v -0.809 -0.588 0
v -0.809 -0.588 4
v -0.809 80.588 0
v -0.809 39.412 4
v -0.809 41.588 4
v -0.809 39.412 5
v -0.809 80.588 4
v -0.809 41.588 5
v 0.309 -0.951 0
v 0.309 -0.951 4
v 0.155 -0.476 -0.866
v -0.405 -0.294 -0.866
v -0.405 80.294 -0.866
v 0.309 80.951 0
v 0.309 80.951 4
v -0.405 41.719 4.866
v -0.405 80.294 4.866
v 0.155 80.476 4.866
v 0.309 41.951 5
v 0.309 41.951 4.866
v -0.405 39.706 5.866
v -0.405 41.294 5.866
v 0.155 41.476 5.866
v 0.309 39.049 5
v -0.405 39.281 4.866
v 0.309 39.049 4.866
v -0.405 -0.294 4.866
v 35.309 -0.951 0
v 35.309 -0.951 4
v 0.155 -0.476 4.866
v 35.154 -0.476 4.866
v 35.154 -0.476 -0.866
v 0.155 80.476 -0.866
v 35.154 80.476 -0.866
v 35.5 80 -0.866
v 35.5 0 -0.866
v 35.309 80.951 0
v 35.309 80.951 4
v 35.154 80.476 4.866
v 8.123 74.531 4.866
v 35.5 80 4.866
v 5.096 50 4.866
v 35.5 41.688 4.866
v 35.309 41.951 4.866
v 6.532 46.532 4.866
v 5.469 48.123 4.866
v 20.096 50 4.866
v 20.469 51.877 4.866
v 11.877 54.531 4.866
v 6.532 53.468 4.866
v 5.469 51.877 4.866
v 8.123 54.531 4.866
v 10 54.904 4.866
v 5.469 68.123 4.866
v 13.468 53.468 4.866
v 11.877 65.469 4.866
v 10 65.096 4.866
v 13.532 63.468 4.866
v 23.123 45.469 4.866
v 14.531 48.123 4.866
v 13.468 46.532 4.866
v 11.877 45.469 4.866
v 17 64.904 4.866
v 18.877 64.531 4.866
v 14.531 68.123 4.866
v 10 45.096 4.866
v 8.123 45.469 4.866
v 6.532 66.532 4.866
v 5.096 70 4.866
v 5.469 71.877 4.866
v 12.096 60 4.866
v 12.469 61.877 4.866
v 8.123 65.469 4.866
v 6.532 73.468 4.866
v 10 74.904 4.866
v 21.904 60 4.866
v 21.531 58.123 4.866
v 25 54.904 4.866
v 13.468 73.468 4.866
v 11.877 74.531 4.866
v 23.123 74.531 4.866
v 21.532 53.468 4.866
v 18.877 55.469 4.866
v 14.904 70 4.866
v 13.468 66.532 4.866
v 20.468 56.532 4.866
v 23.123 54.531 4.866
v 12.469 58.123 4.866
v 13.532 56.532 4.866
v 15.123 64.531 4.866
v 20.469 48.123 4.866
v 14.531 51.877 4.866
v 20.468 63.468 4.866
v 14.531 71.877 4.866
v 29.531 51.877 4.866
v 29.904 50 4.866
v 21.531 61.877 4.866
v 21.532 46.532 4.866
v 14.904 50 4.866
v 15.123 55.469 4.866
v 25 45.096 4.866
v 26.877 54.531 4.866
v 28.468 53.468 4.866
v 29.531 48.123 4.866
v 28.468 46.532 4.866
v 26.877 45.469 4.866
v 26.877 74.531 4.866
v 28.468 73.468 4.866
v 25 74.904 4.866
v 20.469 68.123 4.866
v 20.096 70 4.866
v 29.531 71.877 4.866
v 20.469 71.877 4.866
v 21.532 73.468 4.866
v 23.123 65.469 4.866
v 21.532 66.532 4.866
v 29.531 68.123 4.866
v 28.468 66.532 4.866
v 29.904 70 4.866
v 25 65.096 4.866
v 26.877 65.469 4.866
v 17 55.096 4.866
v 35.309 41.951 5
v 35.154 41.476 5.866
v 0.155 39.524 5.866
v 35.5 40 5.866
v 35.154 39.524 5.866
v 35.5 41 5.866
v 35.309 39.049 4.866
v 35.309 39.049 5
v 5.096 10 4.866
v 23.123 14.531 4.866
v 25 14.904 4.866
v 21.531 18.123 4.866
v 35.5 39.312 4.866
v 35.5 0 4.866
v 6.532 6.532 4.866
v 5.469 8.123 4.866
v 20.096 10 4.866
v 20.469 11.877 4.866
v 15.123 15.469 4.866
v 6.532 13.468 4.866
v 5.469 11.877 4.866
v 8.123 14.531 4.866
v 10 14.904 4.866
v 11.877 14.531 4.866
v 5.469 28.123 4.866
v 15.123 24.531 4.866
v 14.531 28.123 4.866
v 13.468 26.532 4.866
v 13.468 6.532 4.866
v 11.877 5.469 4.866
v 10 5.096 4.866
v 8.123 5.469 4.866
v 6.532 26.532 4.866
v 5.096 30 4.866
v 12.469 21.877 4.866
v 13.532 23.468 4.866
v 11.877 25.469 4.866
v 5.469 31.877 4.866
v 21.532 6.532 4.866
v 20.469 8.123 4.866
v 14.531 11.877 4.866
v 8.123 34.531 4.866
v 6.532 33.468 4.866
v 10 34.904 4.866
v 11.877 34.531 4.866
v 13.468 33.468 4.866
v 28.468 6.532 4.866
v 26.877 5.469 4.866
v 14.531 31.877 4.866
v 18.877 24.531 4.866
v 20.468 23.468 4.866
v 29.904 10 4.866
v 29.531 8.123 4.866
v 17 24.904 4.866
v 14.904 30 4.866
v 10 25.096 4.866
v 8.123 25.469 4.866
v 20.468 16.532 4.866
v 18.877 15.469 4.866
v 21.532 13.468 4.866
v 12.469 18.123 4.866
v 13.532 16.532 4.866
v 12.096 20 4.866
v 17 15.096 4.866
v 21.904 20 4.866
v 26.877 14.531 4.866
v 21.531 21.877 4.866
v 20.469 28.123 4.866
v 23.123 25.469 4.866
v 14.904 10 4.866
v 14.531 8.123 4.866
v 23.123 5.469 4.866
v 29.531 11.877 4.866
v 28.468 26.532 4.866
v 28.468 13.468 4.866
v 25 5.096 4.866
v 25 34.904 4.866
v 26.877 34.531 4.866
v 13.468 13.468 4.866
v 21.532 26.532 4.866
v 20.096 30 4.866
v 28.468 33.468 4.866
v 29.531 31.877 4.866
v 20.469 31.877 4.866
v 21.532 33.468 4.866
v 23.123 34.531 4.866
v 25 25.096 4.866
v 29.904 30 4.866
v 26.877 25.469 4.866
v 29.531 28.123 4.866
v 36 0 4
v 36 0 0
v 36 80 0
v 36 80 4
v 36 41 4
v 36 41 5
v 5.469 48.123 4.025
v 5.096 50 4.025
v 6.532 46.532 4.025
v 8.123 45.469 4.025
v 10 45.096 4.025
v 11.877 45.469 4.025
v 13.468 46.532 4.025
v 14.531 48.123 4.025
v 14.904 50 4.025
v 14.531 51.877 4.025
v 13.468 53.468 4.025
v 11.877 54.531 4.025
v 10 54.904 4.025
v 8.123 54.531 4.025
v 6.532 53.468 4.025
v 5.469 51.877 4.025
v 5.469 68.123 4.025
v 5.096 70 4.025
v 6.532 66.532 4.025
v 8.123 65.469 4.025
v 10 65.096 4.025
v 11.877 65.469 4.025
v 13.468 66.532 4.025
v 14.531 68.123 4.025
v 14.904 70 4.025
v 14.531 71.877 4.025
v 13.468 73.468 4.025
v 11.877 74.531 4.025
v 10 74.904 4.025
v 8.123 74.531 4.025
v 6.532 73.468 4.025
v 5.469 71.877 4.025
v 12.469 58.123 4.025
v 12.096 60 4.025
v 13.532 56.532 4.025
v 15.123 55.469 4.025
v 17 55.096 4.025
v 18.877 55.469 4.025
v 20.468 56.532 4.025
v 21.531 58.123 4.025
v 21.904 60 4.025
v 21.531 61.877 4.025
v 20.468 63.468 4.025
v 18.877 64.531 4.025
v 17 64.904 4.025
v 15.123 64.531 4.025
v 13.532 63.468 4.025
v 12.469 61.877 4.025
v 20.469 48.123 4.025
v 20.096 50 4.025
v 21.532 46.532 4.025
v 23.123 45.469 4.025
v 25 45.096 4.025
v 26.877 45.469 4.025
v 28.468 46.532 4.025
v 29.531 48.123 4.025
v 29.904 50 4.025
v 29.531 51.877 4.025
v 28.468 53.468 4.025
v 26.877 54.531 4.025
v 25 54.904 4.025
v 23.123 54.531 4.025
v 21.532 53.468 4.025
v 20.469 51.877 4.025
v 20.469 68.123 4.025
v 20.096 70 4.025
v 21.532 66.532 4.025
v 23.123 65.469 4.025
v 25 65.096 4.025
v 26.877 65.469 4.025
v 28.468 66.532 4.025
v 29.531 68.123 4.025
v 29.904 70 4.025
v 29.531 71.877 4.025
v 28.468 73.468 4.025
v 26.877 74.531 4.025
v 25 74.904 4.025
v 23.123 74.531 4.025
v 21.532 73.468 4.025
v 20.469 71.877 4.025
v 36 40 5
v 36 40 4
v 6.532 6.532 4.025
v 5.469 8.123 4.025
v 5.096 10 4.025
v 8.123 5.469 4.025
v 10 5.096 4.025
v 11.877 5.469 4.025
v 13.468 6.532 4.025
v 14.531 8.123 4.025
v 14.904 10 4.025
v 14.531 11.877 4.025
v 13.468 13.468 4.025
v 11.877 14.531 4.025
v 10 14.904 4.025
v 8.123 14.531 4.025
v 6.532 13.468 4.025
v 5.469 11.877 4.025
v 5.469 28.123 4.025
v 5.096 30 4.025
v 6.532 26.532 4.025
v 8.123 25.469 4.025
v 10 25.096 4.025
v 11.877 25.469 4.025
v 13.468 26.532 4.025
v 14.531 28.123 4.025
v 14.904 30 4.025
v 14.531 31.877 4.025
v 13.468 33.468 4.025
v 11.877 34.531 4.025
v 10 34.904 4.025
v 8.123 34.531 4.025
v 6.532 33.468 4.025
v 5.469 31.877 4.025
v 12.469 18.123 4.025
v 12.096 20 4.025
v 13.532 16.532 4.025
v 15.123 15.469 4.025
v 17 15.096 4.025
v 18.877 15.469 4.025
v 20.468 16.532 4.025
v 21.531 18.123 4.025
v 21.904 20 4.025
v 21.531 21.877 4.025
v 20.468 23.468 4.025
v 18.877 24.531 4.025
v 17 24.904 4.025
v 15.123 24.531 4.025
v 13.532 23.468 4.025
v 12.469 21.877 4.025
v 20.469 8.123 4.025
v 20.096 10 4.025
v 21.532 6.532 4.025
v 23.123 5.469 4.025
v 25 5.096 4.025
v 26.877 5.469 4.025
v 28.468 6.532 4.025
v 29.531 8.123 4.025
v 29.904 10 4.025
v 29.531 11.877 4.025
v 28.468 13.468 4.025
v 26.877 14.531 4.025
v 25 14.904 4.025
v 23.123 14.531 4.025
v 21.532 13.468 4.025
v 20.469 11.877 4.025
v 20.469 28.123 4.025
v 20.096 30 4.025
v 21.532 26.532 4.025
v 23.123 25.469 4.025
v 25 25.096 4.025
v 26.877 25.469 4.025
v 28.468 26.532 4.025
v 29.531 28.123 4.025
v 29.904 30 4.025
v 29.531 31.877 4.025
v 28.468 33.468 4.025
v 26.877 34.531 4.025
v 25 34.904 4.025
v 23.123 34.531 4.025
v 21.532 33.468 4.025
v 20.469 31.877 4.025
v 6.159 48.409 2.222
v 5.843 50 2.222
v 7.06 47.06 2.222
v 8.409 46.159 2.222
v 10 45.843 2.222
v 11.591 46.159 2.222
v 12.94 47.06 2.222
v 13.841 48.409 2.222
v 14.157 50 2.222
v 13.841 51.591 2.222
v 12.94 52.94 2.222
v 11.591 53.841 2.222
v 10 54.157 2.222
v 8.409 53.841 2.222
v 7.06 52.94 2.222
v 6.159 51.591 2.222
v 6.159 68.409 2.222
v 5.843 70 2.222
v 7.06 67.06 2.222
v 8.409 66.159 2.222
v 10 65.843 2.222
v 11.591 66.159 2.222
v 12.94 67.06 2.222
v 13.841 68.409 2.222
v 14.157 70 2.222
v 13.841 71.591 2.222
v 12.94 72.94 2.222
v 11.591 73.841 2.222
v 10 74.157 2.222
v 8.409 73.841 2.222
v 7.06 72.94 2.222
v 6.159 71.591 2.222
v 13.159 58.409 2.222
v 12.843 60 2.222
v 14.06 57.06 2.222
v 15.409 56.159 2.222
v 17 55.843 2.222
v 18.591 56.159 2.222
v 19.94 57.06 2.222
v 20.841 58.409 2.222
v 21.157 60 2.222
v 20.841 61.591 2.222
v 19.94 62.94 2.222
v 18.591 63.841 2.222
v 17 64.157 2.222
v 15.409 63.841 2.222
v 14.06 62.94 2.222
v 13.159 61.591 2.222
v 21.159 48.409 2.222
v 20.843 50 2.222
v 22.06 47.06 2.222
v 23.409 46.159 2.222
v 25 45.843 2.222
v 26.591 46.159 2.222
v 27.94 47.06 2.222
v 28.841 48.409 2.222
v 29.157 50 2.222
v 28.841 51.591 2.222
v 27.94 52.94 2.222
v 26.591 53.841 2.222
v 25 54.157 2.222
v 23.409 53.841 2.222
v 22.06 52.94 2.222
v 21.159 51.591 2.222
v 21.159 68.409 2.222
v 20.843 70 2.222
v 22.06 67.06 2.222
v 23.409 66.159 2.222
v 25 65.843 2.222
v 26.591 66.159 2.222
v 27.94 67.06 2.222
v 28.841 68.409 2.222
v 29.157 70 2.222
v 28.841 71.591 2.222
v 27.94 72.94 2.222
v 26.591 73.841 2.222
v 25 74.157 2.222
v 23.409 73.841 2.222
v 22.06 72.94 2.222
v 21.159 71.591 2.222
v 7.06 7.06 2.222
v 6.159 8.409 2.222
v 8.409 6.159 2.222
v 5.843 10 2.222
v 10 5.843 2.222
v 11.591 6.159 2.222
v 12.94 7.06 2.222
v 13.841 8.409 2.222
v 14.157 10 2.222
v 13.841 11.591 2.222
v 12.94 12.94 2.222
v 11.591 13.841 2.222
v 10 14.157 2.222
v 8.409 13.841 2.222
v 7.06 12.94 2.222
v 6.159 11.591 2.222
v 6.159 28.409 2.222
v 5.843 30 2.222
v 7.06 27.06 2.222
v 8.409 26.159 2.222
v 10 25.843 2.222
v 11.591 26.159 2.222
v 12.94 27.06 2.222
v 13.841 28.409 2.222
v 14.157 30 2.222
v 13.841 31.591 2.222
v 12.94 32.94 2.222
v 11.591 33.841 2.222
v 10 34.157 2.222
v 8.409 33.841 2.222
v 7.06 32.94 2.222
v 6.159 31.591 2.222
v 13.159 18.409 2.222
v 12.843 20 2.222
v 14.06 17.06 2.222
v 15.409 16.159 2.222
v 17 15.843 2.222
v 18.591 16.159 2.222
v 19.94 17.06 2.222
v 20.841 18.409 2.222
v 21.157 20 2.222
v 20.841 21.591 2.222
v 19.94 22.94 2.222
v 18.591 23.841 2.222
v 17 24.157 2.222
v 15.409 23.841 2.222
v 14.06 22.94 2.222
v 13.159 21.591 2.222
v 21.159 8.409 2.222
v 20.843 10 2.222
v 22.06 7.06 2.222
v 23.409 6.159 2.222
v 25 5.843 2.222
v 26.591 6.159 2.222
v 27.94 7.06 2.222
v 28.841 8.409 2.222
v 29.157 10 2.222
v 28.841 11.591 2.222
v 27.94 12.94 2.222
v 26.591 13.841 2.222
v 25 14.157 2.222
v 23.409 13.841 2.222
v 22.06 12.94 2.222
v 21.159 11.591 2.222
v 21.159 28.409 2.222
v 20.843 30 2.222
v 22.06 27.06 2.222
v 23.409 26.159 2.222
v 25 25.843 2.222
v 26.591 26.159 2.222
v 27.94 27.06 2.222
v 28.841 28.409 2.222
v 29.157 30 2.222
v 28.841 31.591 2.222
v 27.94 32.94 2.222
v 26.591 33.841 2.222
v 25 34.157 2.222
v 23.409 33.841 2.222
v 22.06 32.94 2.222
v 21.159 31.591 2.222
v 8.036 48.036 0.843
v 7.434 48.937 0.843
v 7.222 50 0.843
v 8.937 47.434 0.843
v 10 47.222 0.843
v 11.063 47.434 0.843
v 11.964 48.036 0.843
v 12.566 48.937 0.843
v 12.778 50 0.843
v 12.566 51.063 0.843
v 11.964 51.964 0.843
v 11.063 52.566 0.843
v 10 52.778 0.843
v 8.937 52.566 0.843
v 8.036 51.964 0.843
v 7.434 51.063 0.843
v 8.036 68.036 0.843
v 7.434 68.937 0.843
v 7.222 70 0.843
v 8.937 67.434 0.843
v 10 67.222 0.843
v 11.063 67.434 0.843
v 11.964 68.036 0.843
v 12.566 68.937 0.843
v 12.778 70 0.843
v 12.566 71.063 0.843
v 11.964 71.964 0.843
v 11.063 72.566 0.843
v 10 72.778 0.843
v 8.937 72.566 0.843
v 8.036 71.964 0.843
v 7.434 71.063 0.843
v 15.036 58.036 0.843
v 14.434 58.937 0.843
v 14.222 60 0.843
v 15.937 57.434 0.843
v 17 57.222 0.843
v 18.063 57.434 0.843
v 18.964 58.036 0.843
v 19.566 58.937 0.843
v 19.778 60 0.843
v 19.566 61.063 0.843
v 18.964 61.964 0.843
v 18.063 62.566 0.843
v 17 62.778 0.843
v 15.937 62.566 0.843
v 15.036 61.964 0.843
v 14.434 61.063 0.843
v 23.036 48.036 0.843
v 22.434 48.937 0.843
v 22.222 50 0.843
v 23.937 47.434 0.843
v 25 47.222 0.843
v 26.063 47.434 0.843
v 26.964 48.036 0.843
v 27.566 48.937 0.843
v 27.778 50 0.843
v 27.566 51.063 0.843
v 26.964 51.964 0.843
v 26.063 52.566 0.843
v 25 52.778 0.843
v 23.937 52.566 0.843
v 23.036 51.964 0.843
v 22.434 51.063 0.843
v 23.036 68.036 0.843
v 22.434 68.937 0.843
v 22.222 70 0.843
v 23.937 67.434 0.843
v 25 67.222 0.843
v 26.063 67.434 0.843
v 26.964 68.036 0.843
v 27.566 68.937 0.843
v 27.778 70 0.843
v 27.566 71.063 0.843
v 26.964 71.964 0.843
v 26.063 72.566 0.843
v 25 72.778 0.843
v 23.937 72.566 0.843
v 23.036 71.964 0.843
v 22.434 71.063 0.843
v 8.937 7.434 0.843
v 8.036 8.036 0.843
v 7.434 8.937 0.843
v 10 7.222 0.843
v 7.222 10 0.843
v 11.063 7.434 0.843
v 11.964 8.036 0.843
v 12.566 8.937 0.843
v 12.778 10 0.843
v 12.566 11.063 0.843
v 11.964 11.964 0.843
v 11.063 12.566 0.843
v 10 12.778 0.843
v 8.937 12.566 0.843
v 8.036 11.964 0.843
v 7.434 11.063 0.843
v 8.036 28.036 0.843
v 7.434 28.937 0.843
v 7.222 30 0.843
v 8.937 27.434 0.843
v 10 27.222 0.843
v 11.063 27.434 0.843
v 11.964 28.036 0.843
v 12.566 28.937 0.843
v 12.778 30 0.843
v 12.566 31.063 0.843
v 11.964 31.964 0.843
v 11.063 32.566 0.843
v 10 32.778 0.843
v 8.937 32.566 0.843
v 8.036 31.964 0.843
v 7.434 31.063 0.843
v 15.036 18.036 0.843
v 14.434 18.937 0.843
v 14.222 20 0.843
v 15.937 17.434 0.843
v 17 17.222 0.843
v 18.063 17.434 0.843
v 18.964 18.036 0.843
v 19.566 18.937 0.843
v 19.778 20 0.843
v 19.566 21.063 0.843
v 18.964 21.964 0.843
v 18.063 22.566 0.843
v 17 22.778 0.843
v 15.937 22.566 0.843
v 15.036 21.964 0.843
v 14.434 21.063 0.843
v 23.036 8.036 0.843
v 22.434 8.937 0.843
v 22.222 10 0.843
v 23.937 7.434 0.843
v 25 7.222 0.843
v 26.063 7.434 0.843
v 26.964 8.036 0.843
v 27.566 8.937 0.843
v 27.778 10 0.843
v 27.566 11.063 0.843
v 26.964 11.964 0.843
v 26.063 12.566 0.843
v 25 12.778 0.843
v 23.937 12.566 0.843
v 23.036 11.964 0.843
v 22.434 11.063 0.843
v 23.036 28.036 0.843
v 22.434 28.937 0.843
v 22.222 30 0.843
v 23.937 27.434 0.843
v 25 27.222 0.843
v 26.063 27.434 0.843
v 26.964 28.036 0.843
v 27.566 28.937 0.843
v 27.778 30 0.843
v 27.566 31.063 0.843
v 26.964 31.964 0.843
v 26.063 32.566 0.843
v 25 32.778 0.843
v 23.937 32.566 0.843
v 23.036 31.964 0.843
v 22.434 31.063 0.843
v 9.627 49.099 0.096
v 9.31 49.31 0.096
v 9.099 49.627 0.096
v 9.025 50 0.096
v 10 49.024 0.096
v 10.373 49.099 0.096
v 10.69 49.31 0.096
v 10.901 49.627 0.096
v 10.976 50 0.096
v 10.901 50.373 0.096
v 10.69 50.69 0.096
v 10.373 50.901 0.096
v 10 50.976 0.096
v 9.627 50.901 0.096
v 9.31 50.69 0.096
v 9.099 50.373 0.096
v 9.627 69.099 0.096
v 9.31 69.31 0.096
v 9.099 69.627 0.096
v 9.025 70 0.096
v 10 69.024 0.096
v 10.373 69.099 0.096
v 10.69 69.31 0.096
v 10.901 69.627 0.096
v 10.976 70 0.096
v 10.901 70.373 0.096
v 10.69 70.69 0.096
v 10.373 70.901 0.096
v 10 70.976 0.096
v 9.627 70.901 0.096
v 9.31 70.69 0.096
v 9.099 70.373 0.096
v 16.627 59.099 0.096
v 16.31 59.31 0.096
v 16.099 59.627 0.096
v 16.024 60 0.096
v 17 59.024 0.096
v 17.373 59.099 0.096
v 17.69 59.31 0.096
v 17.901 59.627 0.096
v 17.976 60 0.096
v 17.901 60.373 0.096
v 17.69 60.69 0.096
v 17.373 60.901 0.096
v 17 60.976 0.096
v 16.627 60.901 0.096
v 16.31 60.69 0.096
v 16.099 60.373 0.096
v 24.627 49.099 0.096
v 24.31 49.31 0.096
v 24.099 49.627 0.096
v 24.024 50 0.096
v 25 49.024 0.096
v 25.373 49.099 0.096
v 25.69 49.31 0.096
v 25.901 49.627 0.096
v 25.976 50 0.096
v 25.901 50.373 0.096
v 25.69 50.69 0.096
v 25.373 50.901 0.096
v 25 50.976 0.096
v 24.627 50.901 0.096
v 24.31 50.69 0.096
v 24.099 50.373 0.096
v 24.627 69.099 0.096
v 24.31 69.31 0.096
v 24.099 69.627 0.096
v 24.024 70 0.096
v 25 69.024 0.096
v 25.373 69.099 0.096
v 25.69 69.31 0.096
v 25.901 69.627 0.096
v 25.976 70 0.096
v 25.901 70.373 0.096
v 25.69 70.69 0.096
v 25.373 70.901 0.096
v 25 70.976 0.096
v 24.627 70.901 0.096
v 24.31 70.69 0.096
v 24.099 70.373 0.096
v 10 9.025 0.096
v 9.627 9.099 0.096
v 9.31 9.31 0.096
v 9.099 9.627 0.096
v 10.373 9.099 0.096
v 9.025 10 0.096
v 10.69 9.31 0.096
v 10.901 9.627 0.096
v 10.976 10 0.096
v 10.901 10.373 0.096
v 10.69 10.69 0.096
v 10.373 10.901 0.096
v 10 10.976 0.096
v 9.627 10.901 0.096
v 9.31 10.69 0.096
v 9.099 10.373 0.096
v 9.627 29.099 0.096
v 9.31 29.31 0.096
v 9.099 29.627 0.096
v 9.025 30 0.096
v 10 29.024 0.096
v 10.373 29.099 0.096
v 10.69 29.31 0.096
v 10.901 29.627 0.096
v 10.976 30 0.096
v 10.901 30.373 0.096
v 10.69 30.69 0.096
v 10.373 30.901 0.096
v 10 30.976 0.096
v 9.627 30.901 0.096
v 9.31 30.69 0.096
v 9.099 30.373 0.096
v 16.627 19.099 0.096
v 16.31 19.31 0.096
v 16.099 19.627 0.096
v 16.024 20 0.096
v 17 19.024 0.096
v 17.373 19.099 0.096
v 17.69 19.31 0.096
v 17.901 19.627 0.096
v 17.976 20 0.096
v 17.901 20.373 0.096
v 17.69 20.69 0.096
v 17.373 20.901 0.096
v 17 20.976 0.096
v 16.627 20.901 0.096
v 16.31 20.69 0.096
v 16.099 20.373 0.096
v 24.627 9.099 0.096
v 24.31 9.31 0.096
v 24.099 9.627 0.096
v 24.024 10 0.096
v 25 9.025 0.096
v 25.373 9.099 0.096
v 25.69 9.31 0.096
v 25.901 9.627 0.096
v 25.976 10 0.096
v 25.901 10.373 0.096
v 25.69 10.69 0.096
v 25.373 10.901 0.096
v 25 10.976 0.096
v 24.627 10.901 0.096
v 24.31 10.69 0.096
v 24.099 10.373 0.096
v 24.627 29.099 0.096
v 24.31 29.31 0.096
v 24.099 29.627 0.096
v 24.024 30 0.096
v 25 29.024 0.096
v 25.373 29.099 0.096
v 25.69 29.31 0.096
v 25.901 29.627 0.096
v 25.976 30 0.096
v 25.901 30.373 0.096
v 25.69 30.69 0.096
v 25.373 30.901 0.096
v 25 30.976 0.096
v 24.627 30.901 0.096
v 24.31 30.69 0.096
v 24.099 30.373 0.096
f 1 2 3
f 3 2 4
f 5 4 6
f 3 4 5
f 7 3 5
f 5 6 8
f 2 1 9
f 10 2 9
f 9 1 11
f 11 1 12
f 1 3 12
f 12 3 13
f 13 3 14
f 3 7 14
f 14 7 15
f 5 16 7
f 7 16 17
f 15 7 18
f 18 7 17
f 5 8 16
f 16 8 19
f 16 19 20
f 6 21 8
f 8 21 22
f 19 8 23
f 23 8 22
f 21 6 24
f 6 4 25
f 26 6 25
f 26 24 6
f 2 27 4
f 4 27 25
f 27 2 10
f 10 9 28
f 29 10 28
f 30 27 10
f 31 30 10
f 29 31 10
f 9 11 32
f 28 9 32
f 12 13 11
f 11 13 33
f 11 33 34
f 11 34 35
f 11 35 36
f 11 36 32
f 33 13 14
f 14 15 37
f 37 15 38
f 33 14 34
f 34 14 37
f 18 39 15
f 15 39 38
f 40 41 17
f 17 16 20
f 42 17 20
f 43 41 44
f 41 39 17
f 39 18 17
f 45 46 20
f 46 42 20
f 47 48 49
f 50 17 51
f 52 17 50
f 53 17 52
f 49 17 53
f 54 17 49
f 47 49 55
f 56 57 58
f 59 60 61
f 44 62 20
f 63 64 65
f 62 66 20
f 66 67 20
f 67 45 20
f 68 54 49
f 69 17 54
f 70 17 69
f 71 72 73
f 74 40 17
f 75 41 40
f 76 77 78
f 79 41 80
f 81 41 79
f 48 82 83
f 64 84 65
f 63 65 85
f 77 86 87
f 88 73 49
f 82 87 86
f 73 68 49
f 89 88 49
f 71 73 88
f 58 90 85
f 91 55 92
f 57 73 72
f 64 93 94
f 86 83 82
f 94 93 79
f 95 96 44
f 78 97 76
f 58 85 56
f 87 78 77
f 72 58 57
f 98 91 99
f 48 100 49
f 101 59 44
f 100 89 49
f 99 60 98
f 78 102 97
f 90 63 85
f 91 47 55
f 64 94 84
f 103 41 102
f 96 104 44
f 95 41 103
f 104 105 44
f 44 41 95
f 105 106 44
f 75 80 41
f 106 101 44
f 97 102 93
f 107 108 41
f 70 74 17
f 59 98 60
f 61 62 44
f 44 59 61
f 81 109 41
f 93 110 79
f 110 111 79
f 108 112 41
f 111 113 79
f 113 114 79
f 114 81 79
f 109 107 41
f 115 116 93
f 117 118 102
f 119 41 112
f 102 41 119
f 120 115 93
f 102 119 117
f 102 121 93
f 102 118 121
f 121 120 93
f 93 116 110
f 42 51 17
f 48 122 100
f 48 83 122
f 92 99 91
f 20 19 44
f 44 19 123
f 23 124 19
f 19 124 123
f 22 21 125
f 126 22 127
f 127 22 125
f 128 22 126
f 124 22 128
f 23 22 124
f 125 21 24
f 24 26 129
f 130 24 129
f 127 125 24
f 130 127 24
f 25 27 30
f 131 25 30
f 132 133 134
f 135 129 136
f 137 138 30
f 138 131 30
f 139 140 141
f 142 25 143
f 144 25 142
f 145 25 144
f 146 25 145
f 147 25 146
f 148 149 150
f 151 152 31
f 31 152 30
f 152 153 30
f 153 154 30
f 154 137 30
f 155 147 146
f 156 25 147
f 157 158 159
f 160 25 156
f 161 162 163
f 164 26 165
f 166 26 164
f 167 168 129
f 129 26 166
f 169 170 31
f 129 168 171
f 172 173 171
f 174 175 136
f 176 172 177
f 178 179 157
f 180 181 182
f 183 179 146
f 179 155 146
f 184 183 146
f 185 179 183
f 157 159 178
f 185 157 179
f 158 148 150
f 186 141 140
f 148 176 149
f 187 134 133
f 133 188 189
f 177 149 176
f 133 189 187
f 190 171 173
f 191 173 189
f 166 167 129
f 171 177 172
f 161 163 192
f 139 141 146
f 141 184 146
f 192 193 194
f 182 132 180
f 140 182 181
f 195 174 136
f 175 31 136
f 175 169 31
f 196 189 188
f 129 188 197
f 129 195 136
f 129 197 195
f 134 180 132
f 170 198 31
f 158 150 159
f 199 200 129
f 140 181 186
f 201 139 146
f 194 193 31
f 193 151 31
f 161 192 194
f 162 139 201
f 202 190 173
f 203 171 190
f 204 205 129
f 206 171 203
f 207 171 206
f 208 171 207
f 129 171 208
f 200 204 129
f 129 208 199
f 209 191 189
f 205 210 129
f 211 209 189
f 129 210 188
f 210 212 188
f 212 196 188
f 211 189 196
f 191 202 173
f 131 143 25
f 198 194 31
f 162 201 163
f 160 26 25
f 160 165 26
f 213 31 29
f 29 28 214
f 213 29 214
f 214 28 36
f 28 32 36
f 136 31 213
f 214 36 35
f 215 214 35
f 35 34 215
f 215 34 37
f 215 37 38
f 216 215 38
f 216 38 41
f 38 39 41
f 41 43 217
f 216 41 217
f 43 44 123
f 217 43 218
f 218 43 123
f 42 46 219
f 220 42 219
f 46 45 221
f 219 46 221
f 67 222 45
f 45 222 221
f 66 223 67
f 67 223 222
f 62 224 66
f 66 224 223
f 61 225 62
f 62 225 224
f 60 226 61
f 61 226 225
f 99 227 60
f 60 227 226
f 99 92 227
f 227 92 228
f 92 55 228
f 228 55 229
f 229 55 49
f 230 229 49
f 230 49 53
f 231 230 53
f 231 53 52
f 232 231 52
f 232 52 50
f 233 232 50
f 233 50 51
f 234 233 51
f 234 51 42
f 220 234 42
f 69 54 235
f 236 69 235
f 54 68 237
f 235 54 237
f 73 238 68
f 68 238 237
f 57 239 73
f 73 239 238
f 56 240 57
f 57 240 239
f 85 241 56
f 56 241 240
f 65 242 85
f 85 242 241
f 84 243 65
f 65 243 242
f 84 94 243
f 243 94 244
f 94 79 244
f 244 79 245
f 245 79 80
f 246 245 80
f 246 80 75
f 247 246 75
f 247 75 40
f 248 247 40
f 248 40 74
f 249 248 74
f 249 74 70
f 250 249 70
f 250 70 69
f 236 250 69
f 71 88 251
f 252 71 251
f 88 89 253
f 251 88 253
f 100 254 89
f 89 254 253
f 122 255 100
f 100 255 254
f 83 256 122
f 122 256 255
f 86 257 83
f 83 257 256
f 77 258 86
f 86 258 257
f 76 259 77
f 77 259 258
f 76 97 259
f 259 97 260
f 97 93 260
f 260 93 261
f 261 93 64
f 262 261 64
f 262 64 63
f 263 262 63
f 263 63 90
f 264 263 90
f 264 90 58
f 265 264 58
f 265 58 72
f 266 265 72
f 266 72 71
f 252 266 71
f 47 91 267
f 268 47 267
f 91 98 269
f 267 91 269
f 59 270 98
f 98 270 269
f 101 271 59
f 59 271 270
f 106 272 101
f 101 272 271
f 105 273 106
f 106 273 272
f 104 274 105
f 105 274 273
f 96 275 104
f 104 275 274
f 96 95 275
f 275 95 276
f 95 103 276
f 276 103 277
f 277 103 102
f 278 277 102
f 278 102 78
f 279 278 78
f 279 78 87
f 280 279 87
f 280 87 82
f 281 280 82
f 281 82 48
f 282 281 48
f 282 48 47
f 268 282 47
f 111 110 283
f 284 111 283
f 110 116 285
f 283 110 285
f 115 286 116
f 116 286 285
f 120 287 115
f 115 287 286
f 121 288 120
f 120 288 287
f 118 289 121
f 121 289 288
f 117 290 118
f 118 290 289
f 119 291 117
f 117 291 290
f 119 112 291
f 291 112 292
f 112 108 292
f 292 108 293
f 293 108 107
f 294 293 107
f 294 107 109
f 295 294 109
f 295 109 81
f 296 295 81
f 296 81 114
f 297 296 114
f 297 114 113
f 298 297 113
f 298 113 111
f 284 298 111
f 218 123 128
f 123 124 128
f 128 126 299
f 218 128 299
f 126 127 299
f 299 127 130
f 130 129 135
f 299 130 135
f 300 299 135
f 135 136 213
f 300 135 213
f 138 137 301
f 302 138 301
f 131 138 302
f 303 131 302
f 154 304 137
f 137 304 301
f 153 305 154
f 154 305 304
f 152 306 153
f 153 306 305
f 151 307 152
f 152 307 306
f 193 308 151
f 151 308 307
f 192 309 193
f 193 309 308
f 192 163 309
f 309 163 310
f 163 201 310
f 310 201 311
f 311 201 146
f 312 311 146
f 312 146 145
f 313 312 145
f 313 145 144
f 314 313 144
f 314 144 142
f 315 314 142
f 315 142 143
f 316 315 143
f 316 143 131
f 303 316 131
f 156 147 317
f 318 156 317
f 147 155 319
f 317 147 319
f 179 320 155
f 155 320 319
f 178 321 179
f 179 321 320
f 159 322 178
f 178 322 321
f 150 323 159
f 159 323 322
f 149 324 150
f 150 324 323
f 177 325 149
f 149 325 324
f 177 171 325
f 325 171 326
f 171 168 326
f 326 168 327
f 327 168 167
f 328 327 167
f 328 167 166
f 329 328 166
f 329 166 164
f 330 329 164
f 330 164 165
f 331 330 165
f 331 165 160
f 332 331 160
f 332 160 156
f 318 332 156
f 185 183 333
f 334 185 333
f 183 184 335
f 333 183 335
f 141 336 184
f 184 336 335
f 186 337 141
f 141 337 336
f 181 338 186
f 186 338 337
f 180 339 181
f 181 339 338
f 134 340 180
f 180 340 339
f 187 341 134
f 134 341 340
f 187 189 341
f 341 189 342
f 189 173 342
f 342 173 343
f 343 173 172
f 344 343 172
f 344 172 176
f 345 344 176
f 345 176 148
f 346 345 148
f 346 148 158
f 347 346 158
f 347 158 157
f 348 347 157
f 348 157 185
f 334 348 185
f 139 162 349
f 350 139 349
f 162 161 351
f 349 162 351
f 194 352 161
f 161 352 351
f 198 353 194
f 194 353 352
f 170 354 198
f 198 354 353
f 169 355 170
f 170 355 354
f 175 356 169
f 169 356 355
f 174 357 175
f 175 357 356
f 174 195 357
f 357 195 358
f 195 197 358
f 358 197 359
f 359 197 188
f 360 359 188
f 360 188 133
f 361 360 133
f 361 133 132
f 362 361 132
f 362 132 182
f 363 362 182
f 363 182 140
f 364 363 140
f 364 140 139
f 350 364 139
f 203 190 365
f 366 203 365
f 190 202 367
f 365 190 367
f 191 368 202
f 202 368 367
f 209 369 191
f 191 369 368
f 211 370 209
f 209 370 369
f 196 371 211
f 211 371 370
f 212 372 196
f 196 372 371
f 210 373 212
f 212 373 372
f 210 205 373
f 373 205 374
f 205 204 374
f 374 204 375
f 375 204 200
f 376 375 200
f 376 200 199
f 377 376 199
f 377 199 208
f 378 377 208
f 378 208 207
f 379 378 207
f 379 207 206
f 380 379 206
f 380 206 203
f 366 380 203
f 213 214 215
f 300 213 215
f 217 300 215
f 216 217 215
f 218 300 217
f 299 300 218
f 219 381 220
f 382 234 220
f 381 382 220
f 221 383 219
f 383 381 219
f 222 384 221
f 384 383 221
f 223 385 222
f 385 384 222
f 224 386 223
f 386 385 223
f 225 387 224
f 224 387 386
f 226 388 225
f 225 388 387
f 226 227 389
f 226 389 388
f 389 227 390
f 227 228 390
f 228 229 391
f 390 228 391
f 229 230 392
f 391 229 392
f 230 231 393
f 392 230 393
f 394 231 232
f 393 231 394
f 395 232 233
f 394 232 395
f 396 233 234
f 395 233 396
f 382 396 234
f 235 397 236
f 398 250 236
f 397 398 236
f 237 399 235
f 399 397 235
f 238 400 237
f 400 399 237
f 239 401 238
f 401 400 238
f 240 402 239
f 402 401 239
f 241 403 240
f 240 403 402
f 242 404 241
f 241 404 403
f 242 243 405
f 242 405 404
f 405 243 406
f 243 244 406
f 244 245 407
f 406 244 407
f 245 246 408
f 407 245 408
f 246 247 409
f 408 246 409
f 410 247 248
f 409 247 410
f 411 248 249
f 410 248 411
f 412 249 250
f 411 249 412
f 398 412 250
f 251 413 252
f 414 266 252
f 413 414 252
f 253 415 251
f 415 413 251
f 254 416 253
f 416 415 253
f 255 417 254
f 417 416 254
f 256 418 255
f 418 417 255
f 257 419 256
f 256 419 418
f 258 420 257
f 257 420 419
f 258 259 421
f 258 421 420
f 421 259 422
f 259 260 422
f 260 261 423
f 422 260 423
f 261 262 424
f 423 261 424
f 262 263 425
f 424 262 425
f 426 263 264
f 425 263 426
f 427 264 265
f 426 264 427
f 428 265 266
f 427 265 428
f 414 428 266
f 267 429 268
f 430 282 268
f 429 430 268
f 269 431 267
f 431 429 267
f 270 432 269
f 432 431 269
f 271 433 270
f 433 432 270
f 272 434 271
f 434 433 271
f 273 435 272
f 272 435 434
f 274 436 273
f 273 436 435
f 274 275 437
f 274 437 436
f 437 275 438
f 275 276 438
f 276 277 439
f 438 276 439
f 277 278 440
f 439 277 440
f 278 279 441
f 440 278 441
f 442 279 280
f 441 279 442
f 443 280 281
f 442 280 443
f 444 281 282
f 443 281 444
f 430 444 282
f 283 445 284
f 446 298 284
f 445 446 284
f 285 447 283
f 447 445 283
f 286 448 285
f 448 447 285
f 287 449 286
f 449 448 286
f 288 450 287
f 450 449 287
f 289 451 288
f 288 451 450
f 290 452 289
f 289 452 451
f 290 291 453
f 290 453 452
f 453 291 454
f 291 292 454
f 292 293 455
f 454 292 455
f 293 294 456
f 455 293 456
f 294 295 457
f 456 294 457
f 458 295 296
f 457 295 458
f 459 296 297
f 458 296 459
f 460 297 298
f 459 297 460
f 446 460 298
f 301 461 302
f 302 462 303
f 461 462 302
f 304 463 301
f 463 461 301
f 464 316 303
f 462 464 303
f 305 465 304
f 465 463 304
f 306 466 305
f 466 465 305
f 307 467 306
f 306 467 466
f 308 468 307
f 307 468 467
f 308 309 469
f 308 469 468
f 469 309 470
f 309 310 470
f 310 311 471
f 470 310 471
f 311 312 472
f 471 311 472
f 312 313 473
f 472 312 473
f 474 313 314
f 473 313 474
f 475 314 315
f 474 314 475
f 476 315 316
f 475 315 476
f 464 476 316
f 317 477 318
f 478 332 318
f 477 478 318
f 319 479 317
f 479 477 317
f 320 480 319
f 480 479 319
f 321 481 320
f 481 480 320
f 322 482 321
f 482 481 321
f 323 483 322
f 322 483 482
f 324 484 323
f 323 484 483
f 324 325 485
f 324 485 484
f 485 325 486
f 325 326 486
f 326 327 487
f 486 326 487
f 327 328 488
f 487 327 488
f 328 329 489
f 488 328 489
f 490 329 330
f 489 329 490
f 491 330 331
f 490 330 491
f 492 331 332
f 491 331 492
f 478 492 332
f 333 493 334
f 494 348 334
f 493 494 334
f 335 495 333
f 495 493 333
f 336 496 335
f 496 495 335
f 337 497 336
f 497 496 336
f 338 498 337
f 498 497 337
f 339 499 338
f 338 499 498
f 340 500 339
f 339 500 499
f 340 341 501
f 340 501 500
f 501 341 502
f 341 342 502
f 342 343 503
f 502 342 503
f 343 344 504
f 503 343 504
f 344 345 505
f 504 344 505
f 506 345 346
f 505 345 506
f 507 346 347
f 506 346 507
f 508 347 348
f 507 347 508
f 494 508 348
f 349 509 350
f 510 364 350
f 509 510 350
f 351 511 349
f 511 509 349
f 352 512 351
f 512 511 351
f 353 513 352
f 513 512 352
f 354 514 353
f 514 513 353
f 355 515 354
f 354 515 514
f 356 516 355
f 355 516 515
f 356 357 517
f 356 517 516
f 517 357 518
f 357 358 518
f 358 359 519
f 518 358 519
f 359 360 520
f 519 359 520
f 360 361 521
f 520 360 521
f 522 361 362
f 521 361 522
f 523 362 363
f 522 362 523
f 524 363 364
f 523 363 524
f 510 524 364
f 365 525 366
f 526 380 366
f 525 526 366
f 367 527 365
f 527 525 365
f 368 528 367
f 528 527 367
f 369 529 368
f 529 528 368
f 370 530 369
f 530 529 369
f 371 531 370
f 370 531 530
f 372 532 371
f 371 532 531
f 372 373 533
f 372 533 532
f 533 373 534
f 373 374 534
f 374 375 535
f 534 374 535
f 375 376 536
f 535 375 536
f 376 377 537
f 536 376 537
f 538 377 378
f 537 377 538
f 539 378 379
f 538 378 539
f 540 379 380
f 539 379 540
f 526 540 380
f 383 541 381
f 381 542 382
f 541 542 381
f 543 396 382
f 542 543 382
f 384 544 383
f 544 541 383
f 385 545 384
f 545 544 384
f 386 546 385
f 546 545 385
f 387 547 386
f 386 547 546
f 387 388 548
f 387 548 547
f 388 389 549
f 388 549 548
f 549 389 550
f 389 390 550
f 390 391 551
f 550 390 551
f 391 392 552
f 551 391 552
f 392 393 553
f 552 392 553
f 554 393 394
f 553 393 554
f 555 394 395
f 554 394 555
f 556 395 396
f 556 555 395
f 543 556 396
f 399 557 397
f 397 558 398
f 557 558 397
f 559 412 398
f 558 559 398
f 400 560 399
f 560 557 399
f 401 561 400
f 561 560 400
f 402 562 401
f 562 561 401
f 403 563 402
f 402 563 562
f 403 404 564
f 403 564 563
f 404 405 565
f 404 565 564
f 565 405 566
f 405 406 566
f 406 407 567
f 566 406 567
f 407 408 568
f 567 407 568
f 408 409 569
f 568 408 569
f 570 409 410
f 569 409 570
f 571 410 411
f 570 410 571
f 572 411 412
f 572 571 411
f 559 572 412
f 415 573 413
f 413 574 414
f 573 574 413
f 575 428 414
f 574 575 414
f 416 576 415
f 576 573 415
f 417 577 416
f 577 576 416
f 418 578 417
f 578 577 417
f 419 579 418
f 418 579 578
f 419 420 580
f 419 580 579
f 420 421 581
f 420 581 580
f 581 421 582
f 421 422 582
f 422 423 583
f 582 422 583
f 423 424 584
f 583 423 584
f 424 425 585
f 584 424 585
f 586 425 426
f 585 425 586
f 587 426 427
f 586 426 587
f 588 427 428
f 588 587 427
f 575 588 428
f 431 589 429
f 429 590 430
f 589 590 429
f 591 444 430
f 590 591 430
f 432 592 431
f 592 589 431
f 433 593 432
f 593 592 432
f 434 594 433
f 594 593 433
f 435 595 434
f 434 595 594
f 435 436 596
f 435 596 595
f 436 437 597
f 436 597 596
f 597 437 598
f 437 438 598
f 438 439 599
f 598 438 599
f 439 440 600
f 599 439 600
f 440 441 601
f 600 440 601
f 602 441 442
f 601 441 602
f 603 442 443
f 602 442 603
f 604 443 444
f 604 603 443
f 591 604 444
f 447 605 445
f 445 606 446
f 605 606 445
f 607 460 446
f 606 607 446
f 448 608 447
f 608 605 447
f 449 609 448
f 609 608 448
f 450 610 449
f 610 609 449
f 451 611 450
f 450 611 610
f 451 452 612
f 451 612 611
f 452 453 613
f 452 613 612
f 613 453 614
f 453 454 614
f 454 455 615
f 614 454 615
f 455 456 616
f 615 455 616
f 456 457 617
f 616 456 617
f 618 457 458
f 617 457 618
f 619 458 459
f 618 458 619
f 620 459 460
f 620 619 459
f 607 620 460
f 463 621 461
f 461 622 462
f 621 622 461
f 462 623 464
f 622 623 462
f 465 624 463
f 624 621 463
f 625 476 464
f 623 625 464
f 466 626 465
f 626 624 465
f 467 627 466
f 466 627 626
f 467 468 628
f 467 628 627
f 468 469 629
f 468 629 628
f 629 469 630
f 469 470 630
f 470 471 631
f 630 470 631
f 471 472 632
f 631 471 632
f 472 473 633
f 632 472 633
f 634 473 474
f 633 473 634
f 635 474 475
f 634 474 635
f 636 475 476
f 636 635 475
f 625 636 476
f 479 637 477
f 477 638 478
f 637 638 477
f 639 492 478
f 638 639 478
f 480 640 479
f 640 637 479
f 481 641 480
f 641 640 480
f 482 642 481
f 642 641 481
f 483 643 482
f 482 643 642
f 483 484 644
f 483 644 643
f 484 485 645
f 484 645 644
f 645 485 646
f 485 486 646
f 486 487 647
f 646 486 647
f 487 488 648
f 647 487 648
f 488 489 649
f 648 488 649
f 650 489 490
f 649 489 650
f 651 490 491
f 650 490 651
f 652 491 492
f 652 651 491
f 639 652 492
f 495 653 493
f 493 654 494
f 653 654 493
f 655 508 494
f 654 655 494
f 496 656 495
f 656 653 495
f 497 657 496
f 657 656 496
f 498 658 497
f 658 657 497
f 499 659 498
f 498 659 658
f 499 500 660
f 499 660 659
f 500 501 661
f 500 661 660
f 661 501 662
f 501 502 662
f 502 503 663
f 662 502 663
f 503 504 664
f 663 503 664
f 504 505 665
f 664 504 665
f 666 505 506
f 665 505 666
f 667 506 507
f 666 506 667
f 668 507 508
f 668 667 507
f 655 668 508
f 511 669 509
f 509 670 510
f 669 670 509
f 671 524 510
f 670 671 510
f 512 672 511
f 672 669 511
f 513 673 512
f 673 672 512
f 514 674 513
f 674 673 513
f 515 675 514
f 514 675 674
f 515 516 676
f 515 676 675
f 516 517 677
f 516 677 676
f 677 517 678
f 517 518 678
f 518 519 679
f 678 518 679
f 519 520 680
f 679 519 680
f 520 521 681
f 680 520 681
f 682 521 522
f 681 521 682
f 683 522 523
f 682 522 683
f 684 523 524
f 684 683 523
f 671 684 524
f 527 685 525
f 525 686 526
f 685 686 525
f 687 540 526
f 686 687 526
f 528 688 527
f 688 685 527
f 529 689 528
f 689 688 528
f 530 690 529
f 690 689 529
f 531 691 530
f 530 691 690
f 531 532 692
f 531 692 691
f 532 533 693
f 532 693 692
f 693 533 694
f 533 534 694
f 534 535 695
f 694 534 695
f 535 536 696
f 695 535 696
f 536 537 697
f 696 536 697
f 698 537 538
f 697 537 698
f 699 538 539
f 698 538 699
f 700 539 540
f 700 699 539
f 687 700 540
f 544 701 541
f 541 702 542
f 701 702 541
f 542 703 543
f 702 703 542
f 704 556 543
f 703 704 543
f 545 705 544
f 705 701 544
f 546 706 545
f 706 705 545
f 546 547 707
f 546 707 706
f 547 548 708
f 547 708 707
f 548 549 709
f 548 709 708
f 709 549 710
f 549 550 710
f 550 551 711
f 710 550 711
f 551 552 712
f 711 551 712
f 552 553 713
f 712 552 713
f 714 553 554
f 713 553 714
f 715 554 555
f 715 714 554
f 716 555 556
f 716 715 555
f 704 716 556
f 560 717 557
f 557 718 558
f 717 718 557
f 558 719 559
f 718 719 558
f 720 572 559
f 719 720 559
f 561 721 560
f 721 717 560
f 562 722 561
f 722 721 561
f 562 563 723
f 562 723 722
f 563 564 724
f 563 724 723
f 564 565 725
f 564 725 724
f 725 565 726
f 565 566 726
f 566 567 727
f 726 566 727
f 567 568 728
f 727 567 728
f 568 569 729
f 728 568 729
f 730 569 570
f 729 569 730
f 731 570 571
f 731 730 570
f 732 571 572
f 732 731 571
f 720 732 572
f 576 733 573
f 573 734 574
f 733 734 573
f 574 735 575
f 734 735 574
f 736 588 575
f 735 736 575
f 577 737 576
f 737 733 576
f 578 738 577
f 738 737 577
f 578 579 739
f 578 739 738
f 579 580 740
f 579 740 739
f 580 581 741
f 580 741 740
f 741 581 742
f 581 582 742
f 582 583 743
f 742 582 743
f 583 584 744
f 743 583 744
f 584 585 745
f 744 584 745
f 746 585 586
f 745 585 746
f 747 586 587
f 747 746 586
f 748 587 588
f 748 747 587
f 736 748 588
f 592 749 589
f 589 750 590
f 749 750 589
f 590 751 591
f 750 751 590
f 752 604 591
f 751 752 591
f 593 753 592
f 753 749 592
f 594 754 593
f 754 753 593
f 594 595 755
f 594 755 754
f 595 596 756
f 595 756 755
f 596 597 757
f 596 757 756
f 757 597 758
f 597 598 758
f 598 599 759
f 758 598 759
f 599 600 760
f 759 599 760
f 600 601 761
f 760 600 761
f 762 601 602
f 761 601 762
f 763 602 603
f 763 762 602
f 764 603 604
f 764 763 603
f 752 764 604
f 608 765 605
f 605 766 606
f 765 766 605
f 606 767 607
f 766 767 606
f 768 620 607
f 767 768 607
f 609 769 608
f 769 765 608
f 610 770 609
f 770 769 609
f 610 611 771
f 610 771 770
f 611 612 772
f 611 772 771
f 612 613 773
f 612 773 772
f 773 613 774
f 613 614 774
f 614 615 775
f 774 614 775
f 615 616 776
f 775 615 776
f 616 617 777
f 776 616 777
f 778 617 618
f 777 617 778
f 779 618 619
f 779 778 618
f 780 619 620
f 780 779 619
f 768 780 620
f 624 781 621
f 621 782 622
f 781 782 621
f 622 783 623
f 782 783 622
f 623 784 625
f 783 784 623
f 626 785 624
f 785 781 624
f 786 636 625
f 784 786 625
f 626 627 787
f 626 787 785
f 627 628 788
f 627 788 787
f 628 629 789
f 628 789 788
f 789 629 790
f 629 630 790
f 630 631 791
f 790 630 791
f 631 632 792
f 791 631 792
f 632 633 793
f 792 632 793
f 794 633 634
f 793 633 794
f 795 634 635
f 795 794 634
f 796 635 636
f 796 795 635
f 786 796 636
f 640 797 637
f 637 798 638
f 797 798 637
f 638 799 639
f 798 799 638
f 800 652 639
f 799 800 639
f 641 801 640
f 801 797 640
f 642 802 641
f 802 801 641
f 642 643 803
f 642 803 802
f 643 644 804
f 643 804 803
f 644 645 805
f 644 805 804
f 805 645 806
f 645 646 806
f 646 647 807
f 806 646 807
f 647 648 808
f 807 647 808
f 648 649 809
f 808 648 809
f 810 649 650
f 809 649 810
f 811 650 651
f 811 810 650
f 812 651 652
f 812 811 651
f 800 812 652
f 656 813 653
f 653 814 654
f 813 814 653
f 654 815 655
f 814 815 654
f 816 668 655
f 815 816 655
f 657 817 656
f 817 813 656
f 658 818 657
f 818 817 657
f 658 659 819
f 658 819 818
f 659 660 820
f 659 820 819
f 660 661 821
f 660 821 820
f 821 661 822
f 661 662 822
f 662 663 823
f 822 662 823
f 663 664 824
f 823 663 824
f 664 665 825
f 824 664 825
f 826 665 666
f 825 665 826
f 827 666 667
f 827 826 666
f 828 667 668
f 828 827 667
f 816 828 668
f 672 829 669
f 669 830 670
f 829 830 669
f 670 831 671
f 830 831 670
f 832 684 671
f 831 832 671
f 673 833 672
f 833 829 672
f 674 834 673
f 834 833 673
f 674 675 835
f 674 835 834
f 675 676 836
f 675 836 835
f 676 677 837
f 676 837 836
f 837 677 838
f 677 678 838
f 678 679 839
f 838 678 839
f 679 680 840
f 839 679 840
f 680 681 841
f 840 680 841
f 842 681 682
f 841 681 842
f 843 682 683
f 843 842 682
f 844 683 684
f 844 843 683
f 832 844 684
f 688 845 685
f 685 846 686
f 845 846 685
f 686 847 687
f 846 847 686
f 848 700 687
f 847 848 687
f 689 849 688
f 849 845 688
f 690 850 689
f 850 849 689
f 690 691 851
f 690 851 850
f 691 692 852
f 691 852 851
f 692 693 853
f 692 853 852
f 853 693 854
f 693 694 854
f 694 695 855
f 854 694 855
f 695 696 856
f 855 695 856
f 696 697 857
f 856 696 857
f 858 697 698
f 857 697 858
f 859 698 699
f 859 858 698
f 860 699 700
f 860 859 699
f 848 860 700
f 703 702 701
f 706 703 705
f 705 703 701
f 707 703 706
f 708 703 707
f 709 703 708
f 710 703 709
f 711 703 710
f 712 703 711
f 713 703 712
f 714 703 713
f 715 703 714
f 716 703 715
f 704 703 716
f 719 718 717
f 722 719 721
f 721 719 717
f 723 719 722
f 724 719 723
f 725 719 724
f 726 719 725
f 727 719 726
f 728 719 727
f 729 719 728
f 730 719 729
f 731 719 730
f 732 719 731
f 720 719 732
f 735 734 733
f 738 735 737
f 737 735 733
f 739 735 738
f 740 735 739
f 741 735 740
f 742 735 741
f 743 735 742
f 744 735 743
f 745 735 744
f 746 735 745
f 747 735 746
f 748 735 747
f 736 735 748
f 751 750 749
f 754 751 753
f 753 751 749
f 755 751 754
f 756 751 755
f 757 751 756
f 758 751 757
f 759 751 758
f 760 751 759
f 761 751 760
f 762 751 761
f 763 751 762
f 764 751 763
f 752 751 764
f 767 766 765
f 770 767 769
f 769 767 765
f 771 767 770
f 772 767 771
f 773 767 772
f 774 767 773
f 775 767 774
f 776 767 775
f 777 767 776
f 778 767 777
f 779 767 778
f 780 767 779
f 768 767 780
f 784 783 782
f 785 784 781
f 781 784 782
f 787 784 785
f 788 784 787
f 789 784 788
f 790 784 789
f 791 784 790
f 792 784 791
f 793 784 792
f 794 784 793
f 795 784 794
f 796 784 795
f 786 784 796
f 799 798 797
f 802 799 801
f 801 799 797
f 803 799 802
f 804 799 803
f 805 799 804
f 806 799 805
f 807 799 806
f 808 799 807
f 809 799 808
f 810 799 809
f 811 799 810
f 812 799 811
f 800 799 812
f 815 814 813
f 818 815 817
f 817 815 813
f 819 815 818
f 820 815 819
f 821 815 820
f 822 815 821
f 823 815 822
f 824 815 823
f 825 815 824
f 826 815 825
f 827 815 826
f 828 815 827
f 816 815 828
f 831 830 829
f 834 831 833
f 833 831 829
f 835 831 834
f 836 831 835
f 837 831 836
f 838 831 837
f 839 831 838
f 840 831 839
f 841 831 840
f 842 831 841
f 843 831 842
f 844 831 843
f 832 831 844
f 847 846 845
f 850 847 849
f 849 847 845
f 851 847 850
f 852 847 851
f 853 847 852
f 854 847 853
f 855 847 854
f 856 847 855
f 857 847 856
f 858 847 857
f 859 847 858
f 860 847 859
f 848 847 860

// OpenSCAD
// Loguncov Maxim 13.12.13


//$fn=128;


translate([0,40,0])
minkowski()
{cube([35,1,5]);
sphere(1);
}

difference() {

//основа
minkowski()
{cube([35,80,4]);
sphere(1);
}

//отверстия
translate([10,10,5])sphere(5);
translate([25,30,5])sphere(5);
translate([25,10,5])sphere(5);
translate([10,30,5])sphere(5);
translate([17,20,5])sphere(5);


translate([10,70,5])sphere(5);
translate([25,50,5])sphere(5);
translate([25,70,5])sphere(5);
translate([10,50,5])sphere(5);
translate([17,60,5])sphere(5);
}
